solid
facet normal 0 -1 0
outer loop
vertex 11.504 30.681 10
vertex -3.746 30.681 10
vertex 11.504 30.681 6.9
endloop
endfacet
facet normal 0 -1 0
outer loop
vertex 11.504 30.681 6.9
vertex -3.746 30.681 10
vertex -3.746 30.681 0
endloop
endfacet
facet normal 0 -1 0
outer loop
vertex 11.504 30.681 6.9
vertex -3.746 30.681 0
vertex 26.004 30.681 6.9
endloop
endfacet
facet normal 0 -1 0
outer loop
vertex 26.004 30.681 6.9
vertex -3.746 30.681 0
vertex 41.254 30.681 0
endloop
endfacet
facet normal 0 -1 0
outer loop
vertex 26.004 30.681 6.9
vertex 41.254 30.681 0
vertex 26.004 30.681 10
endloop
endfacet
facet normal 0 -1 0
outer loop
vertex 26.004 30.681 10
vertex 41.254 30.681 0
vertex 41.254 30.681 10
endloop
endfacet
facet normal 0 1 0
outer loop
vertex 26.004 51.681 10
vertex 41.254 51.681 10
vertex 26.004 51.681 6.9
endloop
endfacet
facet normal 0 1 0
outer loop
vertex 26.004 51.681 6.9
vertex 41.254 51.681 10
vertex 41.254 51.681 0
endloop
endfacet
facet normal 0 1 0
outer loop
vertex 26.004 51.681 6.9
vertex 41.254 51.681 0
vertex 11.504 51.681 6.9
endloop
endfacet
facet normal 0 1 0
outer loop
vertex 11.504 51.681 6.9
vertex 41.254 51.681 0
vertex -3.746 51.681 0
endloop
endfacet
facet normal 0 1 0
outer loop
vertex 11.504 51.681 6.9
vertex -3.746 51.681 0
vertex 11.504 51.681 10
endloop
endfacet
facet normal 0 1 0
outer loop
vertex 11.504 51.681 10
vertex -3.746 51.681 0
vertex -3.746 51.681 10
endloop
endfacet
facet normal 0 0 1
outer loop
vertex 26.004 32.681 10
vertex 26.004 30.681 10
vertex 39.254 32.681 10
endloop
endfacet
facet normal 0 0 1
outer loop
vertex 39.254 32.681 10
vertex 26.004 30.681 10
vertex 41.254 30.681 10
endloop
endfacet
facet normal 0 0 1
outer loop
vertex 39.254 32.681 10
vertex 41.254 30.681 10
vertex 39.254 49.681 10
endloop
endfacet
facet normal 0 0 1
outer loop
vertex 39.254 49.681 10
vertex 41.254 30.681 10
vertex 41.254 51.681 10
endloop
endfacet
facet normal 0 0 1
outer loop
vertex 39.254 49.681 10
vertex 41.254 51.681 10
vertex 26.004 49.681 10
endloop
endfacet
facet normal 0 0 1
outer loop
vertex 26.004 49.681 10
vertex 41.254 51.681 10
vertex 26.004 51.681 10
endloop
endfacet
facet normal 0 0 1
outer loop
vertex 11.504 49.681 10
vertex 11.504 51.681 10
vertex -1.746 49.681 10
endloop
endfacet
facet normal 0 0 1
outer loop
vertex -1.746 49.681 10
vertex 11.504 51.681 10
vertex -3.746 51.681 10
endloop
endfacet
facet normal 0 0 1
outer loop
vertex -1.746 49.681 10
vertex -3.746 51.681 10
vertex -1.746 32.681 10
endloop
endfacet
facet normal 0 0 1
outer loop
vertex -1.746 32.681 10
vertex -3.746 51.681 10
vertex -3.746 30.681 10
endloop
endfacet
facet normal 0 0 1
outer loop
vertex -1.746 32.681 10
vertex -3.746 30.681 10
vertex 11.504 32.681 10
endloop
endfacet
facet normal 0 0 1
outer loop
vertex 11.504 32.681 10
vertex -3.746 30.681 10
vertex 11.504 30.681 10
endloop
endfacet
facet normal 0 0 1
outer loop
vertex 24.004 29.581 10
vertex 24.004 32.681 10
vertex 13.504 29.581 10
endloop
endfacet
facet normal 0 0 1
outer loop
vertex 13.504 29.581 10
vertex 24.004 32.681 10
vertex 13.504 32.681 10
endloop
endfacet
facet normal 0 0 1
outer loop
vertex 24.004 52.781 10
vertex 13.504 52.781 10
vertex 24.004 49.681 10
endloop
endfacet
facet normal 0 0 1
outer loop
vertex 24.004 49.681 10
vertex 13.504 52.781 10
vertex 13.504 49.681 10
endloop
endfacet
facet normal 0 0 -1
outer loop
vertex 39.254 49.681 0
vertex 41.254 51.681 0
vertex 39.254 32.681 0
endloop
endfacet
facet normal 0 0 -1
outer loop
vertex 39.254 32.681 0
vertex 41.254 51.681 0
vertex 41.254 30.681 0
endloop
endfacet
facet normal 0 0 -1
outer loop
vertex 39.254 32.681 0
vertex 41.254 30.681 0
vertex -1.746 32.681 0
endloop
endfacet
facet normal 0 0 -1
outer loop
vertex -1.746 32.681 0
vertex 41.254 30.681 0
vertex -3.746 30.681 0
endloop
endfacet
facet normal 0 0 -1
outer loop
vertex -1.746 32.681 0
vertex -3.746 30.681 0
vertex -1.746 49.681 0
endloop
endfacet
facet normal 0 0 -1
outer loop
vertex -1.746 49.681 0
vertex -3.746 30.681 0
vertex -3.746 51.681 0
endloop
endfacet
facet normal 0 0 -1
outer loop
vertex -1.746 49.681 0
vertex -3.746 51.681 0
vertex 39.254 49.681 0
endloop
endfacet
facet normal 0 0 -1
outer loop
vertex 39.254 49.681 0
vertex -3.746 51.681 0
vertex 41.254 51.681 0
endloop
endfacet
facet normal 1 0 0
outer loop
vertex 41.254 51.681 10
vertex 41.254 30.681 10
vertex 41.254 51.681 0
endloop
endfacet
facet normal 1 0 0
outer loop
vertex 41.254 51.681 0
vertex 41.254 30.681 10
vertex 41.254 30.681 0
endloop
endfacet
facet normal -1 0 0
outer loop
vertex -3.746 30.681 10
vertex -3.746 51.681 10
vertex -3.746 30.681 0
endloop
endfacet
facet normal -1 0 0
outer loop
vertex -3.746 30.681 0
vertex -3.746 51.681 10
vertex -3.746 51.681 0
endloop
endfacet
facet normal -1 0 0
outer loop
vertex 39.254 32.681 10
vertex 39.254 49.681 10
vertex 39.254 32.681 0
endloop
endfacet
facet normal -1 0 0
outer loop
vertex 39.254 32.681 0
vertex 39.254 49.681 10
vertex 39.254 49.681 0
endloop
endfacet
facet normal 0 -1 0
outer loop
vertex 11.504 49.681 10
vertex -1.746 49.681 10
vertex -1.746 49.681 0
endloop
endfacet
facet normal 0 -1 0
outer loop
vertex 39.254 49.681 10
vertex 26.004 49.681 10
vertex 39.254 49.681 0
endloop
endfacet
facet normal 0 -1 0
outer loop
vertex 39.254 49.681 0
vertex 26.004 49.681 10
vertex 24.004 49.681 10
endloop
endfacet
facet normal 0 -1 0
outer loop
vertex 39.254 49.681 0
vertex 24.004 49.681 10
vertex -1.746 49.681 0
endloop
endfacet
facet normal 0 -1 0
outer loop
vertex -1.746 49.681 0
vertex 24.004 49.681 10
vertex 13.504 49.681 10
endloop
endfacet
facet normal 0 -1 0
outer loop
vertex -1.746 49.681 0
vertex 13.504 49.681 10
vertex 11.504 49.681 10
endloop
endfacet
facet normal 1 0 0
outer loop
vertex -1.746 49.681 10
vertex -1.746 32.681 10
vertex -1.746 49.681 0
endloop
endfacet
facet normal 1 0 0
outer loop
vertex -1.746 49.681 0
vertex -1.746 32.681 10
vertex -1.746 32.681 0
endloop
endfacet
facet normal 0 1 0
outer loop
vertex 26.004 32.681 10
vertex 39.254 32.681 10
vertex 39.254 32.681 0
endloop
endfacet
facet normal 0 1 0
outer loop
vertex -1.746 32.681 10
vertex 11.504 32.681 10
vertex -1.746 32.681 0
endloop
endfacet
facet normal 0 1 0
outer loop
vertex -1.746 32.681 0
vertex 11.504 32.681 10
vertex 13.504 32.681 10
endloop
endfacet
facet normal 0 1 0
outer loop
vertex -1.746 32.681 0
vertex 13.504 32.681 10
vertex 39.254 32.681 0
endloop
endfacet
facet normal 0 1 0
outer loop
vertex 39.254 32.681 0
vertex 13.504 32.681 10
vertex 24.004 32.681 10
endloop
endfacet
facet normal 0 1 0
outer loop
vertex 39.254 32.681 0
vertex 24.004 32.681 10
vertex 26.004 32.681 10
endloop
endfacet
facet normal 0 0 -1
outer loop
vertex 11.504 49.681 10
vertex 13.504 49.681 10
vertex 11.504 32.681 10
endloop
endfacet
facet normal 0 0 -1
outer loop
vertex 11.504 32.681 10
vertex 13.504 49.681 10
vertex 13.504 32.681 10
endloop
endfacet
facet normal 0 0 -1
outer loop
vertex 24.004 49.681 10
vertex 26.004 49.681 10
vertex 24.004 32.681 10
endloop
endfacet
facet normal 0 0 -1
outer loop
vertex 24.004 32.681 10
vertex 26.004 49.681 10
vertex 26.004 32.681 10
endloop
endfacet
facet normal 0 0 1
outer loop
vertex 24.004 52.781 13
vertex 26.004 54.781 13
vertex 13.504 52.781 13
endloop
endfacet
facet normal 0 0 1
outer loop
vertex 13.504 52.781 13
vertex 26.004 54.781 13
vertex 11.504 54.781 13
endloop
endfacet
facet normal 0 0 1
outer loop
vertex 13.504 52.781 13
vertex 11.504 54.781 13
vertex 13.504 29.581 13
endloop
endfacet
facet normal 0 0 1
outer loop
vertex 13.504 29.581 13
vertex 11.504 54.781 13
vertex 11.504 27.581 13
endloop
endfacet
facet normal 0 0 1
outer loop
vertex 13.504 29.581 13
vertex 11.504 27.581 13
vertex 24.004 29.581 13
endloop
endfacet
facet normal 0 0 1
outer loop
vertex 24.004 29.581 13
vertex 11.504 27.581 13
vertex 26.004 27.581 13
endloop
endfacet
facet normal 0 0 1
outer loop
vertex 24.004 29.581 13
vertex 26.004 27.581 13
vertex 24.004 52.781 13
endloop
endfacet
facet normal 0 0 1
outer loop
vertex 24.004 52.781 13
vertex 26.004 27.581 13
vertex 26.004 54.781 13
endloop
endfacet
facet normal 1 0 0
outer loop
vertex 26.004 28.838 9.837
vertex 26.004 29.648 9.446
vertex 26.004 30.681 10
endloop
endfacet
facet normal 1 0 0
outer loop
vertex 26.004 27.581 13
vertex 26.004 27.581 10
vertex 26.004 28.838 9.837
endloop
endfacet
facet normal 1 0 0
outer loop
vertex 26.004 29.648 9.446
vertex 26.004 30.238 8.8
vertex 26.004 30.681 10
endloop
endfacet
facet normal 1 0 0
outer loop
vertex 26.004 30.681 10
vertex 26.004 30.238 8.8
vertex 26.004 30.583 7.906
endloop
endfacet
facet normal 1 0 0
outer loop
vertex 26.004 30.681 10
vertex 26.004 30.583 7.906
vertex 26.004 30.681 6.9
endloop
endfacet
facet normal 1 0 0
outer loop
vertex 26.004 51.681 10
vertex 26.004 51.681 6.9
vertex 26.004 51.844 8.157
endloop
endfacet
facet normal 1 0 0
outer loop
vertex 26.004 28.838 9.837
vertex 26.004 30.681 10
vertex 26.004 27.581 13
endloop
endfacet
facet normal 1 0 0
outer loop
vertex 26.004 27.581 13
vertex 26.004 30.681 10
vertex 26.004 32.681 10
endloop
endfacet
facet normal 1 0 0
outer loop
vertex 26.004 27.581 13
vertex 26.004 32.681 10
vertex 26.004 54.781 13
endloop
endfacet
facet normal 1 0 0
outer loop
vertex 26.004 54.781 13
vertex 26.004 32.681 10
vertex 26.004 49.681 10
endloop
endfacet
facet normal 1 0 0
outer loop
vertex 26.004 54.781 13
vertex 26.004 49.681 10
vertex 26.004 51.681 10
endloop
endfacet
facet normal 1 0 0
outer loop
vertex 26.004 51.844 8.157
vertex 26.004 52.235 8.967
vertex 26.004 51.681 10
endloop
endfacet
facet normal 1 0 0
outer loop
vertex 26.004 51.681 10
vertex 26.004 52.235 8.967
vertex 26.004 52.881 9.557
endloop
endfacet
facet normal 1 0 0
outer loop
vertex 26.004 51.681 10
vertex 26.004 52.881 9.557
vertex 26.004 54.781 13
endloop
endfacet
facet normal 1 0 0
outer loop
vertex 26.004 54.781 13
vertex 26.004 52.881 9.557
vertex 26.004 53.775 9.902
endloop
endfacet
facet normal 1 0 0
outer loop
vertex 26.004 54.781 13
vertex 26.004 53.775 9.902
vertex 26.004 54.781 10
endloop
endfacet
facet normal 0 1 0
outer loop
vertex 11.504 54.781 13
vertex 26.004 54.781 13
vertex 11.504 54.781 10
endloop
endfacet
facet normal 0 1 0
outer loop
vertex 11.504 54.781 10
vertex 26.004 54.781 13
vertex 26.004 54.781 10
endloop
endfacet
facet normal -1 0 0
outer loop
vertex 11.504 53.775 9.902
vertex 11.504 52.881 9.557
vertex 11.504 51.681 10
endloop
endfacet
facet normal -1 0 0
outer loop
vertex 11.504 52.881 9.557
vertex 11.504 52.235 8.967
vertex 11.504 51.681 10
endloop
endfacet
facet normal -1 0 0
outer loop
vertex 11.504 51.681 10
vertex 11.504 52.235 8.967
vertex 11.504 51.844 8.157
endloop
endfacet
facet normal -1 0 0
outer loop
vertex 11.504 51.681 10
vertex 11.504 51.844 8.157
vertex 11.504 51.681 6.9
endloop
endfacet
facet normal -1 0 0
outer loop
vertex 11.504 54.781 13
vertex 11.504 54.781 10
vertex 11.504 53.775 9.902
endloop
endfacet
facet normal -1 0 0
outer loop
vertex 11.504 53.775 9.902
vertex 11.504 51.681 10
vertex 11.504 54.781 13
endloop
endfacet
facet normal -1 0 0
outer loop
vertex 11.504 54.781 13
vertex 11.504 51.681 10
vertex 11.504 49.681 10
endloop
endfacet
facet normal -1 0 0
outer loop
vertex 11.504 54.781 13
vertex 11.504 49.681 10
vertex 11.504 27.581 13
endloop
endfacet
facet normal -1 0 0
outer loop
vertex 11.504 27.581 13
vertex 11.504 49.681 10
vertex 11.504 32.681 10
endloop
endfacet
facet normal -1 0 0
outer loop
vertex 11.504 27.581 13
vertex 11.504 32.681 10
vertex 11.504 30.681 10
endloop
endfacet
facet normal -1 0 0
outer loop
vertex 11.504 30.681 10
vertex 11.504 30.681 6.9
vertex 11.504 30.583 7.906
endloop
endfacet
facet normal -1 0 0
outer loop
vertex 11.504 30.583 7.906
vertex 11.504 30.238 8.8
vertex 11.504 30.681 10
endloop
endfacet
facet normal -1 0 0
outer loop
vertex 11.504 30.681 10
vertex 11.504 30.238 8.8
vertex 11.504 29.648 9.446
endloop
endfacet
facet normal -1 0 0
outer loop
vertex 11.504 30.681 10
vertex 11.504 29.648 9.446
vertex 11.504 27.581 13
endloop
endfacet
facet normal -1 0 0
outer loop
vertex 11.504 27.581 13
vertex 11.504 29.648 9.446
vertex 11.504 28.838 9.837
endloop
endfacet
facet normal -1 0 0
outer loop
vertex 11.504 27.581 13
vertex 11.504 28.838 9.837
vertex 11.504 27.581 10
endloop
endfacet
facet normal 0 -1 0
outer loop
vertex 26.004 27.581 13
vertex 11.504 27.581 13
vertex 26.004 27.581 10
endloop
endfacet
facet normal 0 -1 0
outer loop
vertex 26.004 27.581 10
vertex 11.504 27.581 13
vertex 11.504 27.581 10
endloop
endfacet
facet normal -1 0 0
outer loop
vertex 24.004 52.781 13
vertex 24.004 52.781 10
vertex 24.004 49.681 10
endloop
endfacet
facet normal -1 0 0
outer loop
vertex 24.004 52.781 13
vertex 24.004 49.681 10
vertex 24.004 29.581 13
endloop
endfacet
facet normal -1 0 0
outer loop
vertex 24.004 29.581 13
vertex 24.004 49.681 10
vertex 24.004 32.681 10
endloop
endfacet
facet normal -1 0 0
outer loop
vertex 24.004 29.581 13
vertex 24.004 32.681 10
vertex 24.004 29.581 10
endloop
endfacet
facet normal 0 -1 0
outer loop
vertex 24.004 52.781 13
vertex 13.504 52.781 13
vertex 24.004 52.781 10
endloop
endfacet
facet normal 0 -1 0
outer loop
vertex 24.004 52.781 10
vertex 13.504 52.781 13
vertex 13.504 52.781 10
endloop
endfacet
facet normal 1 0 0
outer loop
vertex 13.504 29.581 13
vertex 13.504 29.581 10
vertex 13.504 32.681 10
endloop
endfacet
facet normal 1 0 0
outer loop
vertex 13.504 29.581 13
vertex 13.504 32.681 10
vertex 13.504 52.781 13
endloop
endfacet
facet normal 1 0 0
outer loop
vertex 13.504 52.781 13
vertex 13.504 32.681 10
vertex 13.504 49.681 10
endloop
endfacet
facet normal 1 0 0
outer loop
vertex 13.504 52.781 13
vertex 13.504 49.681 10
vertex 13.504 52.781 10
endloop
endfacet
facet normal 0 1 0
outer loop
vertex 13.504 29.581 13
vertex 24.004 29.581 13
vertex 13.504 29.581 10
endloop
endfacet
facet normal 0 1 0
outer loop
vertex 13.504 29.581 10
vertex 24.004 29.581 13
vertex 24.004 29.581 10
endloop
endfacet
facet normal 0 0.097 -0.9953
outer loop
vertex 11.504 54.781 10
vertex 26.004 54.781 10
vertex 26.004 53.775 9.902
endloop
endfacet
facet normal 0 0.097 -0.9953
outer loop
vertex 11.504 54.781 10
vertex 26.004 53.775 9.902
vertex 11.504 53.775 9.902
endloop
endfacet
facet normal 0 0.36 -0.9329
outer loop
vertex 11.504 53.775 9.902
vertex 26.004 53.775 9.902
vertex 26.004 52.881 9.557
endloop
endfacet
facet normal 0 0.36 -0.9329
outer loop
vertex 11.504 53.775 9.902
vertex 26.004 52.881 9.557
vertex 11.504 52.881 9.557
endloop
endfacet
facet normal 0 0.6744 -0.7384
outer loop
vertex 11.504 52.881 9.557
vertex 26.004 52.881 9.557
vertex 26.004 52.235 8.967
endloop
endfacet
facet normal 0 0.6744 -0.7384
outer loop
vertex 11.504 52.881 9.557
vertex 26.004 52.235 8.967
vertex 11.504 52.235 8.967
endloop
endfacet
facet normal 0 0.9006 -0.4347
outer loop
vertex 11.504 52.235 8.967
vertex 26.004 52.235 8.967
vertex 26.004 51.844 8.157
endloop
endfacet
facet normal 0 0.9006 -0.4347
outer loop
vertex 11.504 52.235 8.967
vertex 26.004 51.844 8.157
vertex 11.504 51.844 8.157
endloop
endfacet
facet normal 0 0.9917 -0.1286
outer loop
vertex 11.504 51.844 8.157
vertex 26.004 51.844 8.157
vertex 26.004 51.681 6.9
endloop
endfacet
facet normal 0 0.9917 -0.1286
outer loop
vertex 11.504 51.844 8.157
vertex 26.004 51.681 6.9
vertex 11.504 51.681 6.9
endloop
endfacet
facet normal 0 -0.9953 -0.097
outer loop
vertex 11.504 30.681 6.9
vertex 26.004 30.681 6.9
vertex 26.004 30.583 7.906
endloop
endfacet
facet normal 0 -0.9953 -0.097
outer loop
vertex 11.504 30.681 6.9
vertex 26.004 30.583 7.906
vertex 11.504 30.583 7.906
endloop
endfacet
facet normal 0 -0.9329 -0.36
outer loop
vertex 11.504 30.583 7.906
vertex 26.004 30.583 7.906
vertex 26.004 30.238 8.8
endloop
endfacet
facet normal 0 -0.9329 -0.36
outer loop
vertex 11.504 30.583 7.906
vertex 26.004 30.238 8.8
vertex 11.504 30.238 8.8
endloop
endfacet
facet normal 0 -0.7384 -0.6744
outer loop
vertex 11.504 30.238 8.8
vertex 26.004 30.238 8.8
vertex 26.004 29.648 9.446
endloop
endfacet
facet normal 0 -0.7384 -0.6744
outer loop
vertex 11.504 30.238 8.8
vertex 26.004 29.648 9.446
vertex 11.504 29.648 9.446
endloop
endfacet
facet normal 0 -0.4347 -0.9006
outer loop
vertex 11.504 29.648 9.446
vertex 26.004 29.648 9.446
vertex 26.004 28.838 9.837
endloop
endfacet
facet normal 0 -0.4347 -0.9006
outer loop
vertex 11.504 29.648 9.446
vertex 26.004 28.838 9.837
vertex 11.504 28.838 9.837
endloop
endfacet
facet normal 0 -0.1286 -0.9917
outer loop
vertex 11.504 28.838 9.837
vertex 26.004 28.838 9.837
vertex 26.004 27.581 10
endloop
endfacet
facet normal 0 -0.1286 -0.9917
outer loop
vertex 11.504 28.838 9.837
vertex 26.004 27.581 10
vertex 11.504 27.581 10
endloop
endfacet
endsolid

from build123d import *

# Parameters (mm, degrees)
SZKIC1_W                    = 45
SZKIC1_H                    = 21
SZKIC1_W_2                  = 41
SZKIC1_H_2                  = 17
DODANIE_WYCI_GNI_CIE1_DEPTH = 10
SZKIC2_W                    = 14.5
SZKIC2_H                    = 27.2
SZKIC2_W_2                  = 10.5
SZKIC2_H_2                  = 23.2
DODANIE_WYCI_GNI_CIE2_DEPTH = 3
DODANIE_WYCI_GNI_CIE3_START = -14.5
DODANIE_WYCI_GNI_CIE3_DEPTH = 14.5


with BuildPart() as part:
    # Szkic1 → Dodanie-wyciągnięcie1 (new body)
    with BuildSketch(Plane.XY):
        with Locations((18.754452903, 41.181022194)):
            Rectangle(SZKIC1_W, SZKIC1_H)
        with Locations((18.754452903, 41.181022194)):
            Rectangle(SZKIC1_W_2, SZKIC1_H_2, mode=Mode.SUBTRACT)
    extrude(amount=DODANIE_WYCI_GNI_CIE1_DEPTH)

    # Szkic2 → Dodanie-wyciągnięcie2 (add)
    with BuildSketch(Plane.XY.offset(10)):
        with Locations((18.754452903, 41.181022194)):
            Rectangle(SZKIC2_W, SZKIC2_H)
        with Locations((18.754452903, 41.181022194)):
            Rectangle(SZKIC2_W_2, SZKIC2_H_2, mode=Mode.SUBTRACT)
    extrude(amount=DODANIE_WYCI_GNI_CIE2_DEPTH)

    # Szkic3 → Dodanie-wyciągnięcie3 (add)
    with BuildSketch(Plane(origin=(26.004452903, 0, 0), x_dir=(0, 0, -1), z_dir=(1, 0, 0)).offset(DODANIE_WYCI_GNI_CIE3_START)):
        with BuildLine():
            Line((-10, 54.781022194), (-10, 51.681022194))
            Line((-10, 51.681022194), (-6.9, 51.681022194))
            add(Edge.make_bspline(
                [(-6.9, 51.681022194), (-10, 51.681022194), (-10, 54.781022194)],
                knots=[0, 0, 0, 1, 1, 1], degree=2))
        make_face()
        with BuildLine():
            Line((-10, 27.581022194), (-10, 30.681022194))
            Line((-10, 30.681022194), (-6.9, 30.681022194))
            add(Edge.make_bspline(
                [(-10, 27.581022194), (-10, 30.681022194), (-6.9, 30.681022194)],
                knots=[0, 0, 0, 1, 1, 1], degree=2))
        make_face()
    extrude(amount=DODANIE_WYCI_GNI_CIE3_DEPTH)


solid = part.part
